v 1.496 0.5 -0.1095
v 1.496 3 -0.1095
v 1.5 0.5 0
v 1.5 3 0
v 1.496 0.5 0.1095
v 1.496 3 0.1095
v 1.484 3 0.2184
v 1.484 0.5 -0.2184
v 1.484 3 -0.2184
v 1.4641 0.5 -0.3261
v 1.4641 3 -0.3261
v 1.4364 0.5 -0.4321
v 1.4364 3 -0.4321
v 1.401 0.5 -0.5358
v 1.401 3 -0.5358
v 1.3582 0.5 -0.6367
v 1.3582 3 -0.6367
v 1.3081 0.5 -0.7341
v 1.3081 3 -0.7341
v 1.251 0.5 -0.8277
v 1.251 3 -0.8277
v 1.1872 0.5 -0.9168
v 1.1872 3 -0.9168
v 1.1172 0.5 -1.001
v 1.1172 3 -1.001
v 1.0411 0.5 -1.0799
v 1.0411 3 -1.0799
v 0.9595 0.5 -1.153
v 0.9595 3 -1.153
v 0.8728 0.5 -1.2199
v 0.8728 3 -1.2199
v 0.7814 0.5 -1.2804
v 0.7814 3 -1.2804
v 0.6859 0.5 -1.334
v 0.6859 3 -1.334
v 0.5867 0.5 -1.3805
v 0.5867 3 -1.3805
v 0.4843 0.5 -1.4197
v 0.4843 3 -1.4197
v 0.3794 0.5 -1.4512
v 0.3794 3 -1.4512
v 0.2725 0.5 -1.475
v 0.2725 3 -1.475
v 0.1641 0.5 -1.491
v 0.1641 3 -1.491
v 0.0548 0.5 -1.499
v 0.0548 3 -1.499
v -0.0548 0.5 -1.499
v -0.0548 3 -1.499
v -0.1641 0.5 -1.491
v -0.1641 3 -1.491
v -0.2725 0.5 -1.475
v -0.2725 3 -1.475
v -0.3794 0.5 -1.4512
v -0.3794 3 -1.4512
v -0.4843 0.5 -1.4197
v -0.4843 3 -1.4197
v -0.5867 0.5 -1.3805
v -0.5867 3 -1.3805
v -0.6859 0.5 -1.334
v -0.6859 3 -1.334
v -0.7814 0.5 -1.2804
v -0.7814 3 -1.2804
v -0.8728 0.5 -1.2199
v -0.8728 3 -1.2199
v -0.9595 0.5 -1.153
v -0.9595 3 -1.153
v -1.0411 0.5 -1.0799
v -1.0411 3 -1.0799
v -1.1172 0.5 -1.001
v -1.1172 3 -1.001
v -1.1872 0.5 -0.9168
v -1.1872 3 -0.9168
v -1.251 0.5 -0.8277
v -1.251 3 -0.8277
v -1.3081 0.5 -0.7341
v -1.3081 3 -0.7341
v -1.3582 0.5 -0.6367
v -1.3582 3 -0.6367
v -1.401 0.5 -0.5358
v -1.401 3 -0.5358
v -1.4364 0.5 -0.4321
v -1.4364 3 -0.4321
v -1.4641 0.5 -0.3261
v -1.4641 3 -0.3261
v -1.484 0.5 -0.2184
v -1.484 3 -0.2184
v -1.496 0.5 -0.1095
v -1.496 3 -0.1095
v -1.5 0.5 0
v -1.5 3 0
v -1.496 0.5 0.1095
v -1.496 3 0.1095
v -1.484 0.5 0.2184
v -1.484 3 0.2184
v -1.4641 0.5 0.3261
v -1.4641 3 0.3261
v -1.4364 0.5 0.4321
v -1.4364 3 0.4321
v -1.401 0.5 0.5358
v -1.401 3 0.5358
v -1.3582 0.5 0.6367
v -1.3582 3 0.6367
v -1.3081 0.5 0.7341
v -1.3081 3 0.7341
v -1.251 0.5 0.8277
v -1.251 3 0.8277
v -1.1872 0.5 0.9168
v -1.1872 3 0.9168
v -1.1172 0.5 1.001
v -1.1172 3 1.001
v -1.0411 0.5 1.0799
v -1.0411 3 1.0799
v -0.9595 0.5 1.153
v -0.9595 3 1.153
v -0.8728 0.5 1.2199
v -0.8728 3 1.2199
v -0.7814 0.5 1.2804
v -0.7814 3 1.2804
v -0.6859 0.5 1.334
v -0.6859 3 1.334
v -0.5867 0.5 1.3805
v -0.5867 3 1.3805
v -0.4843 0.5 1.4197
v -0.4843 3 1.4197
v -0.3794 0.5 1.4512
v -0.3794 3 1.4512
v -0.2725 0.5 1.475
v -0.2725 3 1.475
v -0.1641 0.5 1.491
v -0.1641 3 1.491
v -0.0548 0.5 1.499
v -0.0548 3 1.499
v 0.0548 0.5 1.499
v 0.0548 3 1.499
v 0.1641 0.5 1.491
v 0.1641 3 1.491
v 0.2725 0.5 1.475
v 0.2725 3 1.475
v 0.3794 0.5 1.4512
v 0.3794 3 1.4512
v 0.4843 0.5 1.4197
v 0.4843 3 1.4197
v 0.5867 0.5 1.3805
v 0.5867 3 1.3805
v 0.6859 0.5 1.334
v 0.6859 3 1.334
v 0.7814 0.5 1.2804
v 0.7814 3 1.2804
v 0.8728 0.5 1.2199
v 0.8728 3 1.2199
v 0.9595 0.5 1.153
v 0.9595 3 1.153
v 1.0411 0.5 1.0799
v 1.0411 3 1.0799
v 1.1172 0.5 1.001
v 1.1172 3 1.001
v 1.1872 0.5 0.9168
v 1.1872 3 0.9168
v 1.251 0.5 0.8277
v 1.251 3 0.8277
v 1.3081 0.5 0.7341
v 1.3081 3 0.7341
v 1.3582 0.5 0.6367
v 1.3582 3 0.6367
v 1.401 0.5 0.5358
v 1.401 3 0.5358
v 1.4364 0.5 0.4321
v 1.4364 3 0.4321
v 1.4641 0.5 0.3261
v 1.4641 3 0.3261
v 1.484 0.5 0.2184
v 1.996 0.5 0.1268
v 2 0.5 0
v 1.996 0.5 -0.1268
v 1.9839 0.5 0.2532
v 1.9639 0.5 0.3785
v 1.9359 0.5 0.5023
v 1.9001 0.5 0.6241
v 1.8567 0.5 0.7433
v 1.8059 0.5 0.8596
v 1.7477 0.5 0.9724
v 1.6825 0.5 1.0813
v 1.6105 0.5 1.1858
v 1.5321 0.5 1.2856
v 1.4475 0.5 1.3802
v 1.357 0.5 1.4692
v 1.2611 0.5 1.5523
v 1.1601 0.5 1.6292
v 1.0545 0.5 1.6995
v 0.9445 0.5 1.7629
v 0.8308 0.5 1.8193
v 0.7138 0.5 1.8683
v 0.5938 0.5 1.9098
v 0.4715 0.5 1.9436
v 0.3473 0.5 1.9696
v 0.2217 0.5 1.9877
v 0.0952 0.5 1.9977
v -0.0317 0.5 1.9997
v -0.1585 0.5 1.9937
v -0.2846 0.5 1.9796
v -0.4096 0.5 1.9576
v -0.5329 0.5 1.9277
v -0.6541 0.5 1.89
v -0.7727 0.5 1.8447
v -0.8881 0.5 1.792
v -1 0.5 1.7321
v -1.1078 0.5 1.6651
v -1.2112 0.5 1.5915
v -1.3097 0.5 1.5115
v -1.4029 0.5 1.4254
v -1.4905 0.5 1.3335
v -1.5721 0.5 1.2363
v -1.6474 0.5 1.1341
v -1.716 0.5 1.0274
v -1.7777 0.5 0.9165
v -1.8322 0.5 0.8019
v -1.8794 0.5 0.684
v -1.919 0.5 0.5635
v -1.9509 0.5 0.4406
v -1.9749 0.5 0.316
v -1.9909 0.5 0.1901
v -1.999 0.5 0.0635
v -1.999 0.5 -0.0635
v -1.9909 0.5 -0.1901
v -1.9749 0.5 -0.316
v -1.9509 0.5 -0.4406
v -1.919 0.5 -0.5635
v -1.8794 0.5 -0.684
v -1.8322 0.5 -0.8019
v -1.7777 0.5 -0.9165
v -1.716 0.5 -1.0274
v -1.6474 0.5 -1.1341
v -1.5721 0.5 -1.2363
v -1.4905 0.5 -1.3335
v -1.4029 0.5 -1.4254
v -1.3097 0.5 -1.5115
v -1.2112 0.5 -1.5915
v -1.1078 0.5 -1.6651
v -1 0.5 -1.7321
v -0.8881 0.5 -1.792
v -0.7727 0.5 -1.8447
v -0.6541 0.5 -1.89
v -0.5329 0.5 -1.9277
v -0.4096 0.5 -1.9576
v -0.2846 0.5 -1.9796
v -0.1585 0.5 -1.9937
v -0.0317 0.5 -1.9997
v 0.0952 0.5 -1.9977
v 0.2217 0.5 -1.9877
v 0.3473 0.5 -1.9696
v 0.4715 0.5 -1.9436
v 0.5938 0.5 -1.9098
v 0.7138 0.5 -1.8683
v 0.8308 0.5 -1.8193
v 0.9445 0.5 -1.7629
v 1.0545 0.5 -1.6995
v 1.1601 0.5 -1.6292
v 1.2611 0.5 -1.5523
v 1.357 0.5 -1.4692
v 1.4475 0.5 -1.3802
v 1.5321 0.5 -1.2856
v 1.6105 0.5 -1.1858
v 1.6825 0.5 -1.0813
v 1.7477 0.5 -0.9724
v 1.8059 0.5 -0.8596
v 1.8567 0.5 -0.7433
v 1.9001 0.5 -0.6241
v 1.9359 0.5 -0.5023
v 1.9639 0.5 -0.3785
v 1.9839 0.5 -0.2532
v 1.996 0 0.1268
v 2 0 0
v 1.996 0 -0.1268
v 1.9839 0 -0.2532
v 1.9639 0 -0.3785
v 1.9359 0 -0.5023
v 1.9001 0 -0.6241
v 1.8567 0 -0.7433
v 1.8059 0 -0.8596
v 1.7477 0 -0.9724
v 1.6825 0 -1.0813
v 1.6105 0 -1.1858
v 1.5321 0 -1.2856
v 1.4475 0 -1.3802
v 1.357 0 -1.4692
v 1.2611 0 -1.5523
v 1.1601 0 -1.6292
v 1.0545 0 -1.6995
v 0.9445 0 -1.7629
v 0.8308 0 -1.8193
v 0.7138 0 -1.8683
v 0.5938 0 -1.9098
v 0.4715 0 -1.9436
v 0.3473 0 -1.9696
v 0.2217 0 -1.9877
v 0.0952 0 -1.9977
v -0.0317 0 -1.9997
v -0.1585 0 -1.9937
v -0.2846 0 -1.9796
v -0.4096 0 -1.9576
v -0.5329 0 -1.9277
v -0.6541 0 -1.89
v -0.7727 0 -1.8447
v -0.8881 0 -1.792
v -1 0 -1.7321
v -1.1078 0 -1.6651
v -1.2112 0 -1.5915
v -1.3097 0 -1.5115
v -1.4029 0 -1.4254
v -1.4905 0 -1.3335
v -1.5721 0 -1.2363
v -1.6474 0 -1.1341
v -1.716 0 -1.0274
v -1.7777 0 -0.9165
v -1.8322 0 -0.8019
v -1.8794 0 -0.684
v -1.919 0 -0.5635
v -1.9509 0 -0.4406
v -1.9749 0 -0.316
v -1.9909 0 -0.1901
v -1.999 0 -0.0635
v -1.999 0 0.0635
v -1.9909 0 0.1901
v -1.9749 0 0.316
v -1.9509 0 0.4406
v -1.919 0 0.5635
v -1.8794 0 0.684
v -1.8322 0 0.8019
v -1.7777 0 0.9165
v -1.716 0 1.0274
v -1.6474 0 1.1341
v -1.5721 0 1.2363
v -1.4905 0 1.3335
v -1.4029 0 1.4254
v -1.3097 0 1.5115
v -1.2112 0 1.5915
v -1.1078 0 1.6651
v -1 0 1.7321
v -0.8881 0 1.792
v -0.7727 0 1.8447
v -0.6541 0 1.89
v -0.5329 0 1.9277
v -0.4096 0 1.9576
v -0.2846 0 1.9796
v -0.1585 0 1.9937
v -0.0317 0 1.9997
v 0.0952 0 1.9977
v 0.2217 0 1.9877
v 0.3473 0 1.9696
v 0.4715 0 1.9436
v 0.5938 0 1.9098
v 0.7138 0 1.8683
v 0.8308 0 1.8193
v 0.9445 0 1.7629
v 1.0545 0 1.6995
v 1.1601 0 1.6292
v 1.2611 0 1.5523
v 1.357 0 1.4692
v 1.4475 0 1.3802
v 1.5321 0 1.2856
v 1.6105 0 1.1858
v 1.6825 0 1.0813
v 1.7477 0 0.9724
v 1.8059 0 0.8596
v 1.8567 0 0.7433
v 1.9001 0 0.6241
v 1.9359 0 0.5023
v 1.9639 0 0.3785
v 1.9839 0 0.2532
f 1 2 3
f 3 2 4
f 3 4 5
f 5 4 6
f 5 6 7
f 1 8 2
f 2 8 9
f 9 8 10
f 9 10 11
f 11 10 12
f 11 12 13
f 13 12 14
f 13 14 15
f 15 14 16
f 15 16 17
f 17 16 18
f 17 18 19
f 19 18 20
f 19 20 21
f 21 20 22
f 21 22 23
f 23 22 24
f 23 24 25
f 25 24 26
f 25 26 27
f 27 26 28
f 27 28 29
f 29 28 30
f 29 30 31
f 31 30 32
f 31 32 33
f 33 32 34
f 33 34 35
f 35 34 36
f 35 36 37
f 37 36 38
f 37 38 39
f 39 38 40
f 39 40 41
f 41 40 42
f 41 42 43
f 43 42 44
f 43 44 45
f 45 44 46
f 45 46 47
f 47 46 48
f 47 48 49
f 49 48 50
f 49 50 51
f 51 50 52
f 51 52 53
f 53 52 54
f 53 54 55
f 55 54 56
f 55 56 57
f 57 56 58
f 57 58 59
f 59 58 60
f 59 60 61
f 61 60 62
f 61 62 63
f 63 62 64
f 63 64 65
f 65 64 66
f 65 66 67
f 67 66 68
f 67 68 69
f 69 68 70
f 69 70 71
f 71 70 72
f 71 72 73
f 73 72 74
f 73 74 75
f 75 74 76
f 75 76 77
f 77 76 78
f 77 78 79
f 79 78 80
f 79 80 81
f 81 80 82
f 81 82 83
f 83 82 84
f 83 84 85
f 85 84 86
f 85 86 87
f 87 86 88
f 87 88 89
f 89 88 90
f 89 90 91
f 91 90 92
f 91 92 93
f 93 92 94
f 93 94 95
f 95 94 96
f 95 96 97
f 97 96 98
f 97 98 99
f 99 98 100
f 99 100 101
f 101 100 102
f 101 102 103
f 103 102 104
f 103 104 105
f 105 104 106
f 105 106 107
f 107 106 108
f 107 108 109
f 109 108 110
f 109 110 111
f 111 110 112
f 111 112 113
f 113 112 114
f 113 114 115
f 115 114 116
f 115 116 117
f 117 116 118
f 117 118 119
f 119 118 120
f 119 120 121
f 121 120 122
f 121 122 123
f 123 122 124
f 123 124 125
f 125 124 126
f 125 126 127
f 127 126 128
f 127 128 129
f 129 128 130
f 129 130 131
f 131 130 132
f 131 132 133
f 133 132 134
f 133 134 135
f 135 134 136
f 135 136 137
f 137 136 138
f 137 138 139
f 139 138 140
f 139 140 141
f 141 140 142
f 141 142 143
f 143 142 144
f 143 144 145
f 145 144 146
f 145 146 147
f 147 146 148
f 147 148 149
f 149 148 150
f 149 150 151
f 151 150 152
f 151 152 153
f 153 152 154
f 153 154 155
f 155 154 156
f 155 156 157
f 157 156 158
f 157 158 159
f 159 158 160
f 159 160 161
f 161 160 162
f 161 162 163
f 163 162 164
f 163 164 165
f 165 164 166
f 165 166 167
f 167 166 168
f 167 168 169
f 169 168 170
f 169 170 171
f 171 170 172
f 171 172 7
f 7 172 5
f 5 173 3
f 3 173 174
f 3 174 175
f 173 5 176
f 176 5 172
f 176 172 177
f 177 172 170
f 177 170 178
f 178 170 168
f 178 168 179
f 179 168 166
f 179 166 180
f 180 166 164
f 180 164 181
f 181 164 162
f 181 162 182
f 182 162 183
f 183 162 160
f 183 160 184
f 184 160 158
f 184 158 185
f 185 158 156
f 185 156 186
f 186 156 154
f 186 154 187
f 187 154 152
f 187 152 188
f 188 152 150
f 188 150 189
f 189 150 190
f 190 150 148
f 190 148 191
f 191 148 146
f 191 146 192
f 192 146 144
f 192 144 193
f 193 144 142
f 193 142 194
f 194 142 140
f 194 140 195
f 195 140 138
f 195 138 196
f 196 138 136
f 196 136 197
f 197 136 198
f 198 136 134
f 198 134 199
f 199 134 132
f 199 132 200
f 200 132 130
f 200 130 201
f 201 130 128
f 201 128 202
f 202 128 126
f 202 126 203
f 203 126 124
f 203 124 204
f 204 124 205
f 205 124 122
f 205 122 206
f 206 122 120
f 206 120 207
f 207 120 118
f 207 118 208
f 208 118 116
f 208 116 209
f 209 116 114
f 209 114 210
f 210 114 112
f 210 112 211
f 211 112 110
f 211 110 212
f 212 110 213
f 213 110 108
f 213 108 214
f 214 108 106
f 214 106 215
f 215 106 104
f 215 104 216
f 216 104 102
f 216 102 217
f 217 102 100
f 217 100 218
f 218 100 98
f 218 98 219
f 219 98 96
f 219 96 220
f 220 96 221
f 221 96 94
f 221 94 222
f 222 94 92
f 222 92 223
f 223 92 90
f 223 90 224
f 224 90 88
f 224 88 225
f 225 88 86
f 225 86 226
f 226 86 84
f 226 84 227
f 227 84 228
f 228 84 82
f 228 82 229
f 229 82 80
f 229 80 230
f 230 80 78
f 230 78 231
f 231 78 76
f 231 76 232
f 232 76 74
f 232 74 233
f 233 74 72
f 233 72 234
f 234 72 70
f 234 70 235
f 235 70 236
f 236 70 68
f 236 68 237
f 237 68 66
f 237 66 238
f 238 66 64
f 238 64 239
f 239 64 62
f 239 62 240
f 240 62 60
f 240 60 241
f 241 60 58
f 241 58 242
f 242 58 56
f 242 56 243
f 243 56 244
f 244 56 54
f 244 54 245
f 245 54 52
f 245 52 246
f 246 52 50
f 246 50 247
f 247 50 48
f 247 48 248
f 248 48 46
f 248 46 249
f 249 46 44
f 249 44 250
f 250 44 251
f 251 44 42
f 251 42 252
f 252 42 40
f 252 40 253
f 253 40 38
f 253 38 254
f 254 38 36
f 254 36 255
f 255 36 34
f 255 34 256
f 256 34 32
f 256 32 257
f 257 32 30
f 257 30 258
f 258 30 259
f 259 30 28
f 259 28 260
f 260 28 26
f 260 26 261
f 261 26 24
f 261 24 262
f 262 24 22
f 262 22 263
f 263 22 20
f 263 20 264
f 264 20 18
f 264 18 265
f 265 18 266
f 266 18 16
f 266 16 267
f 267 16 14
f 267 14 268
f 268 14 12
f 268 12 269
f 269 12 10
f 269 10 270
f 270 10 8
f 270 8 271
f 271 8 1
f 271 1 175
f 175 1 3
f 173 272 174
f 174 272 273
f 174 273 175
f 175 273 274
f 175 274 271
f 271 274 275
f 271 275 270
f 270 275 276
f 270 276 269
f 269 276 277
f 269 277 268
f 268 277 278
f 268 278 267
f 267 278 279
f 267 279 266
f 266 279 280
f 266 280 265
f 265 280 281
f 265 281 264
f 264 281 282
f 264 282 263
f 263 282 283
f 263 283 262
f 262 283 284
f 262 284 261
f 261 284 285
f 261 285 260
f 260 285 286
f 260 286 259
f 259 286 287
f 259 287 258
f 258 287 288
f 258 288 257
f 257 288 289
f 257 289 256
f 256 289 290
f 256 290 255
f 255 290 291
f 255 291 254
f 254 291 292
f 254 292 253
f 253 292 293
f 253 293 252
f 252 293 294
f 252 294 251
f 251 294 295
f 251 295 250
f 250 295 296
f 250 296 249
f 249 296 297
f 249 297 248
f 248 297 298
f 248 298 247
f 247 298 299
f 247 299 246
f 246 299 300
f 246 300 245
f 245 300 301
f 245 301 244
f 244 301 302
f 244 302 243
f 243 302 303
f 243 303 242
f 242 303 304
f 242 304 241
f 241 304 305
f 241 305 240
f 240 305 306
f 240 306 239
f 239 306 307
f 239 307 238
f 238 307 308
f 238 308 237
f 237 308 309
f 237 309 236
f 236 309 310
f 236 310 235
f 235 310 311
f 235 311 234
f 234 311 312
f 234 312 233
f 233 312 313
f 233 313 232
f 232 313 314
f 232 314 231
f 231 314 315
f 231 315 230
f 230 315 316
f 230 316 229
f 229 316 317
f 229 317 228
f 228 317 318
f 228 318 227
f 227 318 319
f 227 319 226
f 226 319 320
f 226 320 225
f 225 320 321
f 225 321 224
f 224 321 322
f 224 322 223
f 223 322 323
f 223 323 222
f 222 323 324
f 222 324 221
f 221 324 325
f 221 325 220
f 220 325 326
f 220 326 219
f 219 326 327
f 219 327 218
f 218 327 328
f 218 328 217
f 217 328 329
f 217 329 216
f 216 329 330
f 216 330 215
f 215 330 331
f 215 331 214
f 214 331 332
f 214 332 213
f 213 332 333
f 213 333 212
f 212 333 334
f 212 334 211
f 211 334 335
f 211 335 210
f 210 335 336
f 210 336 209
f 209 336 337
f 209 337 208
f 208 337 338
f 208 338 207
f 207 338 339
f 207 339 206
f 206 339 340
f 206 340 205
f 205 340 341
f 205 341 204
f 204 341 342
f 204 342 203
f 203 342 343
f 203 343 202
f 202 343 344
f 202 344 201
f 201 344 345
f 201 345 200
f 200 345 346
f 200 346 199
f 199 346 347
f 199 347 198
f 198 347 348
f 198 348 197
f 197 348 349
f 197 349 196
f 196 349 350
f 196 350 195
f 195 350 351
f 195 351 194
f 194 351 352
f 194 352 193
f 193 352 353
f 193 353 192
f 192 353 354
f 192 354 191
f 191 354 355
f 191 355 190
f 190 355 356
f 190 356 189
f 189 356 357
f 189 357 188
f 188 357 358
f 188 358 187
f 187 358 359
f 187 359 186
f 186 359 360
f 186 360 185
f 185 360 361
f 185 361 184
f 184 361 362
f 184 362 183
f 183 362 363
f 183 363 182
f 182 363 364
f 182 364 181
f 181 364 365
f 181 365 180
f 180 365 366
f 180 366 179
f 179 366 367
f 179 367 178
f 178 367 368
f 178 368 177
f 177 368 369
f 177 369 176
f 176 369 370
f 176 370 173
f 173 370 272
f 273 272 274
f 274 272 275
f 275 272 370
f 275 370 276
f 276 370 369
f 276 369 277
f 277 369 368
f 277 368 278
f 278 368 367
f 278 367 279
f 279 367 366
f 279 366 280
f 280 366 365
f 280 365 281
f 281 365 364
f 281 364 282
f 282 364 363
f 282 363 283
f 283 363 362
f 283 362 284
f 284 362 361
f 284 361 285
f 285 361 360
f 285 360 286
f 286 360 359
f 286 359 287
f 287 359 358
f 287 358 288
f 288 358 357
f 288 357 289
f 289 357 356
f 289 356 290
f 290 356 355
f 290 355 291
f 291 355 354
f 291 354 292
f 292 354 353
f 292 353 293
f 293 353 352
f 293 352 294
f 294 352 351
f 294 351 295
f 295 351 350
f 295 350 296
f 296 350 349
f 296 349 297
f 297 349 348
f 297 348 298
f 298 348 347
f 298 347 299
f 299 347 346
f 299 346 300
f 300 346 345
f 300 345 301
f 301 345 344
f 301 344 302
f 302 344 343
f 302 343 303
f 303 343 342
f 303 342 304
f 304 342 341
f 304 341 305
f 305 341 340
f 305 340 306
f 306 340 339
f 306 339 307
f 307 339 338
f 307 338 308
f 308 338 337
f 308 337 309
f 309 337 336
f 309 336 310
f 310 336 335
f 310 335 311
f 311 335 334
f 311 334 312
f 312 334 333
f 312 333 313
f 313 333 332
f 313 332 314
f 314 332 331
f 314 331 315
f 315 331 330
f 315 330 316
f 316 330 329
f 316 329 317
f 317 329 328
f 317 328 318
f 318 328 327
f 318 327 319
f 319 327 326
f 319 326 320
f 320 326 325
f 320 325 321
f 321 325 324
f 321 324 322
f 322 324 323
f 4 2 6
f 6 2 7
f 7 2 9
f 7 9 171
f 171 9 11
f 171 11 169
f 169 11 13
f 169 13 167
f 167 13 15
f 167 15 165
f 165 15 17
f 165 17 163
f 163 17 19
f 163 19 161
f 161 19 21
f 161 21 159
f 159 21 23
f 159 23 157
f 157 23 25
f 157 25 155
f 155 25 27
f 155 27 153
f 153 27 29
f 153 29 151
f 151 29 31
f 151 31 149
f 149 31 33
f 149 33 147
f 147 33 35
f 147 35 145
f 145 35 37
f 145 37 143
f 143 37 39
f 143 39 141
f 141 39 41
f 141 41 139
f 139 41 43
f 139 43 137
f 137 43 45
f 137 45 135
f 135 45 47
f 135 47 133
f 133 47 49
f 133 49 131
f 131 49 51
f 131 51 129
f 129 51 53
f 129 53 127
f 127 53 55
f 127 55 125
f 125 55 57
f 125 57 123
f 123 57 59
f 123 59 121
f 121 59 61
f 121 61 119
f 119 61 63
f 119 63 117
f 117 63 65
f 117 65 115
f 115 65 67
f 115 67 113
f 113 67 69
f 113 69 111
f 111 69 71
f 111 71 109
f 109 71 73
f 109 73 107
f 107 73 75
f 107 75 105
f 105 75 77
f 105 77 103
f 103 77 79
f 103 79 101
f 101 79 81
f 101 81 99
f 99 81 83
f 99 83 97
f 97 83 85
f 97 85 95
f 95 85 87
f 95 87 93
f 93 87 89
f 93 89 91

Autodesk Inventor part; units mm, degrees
ref_plane "YZ Plane" through (0, 0, 0) normal (1, 0, 0) x (0, 1, 0)
ref_plane "XZ Plane" through (0, 0, 0) normal (0, 1, 0) x (-1, 0, 0)
ref_plane "XY Plane" through (0, 0, 0) normal (0, 0, 1) x (1, 0, 0)
sketch "Sketch1" plane through (0, 0, 0) normal (0, 1, 0) x (-1, 0, 0)
  circle A0 centre (0, 0) radius 1.625
  dimension "d0" = 3.25
extrude "Extrusion1" add sketch "Sketch1" along normal blind 3
sketch "Sketch3" plane through (0, 0, 0) normal (0, -1, 0) x (1, 0, 0)
  circle A0 centre (0, 0) radius 1.75
  dimension "d6" = 3.5
loft "Loft1" add profiles "Sketch3" section 2 edges at (1.625, 3, 0)
sketch "Sketch5" plane through (0, 0, 0) normal (0, -1, 0) x (1, 0, 0)
  circle A0 centre (0, 0) radius 2
  dimension "d14" = 4
extrude "Extrusion4" add sketch "Sketch5" against normal blind 0.5
sketch "Sketch6" plane through (0, 3, 0) normal (0, 1, 0) x (1, 0, 0)
  circle A0 centre (0, 0) radius 1.5
  circle A1 centre (0, 0) radius 1.75
  dimension "d17" = 3
  dimension "d18" = 3.5
extrude "Extrusion5" cut sketch "Sketch6" against normal blind 2.5
properties part number "EndCap_bot"
